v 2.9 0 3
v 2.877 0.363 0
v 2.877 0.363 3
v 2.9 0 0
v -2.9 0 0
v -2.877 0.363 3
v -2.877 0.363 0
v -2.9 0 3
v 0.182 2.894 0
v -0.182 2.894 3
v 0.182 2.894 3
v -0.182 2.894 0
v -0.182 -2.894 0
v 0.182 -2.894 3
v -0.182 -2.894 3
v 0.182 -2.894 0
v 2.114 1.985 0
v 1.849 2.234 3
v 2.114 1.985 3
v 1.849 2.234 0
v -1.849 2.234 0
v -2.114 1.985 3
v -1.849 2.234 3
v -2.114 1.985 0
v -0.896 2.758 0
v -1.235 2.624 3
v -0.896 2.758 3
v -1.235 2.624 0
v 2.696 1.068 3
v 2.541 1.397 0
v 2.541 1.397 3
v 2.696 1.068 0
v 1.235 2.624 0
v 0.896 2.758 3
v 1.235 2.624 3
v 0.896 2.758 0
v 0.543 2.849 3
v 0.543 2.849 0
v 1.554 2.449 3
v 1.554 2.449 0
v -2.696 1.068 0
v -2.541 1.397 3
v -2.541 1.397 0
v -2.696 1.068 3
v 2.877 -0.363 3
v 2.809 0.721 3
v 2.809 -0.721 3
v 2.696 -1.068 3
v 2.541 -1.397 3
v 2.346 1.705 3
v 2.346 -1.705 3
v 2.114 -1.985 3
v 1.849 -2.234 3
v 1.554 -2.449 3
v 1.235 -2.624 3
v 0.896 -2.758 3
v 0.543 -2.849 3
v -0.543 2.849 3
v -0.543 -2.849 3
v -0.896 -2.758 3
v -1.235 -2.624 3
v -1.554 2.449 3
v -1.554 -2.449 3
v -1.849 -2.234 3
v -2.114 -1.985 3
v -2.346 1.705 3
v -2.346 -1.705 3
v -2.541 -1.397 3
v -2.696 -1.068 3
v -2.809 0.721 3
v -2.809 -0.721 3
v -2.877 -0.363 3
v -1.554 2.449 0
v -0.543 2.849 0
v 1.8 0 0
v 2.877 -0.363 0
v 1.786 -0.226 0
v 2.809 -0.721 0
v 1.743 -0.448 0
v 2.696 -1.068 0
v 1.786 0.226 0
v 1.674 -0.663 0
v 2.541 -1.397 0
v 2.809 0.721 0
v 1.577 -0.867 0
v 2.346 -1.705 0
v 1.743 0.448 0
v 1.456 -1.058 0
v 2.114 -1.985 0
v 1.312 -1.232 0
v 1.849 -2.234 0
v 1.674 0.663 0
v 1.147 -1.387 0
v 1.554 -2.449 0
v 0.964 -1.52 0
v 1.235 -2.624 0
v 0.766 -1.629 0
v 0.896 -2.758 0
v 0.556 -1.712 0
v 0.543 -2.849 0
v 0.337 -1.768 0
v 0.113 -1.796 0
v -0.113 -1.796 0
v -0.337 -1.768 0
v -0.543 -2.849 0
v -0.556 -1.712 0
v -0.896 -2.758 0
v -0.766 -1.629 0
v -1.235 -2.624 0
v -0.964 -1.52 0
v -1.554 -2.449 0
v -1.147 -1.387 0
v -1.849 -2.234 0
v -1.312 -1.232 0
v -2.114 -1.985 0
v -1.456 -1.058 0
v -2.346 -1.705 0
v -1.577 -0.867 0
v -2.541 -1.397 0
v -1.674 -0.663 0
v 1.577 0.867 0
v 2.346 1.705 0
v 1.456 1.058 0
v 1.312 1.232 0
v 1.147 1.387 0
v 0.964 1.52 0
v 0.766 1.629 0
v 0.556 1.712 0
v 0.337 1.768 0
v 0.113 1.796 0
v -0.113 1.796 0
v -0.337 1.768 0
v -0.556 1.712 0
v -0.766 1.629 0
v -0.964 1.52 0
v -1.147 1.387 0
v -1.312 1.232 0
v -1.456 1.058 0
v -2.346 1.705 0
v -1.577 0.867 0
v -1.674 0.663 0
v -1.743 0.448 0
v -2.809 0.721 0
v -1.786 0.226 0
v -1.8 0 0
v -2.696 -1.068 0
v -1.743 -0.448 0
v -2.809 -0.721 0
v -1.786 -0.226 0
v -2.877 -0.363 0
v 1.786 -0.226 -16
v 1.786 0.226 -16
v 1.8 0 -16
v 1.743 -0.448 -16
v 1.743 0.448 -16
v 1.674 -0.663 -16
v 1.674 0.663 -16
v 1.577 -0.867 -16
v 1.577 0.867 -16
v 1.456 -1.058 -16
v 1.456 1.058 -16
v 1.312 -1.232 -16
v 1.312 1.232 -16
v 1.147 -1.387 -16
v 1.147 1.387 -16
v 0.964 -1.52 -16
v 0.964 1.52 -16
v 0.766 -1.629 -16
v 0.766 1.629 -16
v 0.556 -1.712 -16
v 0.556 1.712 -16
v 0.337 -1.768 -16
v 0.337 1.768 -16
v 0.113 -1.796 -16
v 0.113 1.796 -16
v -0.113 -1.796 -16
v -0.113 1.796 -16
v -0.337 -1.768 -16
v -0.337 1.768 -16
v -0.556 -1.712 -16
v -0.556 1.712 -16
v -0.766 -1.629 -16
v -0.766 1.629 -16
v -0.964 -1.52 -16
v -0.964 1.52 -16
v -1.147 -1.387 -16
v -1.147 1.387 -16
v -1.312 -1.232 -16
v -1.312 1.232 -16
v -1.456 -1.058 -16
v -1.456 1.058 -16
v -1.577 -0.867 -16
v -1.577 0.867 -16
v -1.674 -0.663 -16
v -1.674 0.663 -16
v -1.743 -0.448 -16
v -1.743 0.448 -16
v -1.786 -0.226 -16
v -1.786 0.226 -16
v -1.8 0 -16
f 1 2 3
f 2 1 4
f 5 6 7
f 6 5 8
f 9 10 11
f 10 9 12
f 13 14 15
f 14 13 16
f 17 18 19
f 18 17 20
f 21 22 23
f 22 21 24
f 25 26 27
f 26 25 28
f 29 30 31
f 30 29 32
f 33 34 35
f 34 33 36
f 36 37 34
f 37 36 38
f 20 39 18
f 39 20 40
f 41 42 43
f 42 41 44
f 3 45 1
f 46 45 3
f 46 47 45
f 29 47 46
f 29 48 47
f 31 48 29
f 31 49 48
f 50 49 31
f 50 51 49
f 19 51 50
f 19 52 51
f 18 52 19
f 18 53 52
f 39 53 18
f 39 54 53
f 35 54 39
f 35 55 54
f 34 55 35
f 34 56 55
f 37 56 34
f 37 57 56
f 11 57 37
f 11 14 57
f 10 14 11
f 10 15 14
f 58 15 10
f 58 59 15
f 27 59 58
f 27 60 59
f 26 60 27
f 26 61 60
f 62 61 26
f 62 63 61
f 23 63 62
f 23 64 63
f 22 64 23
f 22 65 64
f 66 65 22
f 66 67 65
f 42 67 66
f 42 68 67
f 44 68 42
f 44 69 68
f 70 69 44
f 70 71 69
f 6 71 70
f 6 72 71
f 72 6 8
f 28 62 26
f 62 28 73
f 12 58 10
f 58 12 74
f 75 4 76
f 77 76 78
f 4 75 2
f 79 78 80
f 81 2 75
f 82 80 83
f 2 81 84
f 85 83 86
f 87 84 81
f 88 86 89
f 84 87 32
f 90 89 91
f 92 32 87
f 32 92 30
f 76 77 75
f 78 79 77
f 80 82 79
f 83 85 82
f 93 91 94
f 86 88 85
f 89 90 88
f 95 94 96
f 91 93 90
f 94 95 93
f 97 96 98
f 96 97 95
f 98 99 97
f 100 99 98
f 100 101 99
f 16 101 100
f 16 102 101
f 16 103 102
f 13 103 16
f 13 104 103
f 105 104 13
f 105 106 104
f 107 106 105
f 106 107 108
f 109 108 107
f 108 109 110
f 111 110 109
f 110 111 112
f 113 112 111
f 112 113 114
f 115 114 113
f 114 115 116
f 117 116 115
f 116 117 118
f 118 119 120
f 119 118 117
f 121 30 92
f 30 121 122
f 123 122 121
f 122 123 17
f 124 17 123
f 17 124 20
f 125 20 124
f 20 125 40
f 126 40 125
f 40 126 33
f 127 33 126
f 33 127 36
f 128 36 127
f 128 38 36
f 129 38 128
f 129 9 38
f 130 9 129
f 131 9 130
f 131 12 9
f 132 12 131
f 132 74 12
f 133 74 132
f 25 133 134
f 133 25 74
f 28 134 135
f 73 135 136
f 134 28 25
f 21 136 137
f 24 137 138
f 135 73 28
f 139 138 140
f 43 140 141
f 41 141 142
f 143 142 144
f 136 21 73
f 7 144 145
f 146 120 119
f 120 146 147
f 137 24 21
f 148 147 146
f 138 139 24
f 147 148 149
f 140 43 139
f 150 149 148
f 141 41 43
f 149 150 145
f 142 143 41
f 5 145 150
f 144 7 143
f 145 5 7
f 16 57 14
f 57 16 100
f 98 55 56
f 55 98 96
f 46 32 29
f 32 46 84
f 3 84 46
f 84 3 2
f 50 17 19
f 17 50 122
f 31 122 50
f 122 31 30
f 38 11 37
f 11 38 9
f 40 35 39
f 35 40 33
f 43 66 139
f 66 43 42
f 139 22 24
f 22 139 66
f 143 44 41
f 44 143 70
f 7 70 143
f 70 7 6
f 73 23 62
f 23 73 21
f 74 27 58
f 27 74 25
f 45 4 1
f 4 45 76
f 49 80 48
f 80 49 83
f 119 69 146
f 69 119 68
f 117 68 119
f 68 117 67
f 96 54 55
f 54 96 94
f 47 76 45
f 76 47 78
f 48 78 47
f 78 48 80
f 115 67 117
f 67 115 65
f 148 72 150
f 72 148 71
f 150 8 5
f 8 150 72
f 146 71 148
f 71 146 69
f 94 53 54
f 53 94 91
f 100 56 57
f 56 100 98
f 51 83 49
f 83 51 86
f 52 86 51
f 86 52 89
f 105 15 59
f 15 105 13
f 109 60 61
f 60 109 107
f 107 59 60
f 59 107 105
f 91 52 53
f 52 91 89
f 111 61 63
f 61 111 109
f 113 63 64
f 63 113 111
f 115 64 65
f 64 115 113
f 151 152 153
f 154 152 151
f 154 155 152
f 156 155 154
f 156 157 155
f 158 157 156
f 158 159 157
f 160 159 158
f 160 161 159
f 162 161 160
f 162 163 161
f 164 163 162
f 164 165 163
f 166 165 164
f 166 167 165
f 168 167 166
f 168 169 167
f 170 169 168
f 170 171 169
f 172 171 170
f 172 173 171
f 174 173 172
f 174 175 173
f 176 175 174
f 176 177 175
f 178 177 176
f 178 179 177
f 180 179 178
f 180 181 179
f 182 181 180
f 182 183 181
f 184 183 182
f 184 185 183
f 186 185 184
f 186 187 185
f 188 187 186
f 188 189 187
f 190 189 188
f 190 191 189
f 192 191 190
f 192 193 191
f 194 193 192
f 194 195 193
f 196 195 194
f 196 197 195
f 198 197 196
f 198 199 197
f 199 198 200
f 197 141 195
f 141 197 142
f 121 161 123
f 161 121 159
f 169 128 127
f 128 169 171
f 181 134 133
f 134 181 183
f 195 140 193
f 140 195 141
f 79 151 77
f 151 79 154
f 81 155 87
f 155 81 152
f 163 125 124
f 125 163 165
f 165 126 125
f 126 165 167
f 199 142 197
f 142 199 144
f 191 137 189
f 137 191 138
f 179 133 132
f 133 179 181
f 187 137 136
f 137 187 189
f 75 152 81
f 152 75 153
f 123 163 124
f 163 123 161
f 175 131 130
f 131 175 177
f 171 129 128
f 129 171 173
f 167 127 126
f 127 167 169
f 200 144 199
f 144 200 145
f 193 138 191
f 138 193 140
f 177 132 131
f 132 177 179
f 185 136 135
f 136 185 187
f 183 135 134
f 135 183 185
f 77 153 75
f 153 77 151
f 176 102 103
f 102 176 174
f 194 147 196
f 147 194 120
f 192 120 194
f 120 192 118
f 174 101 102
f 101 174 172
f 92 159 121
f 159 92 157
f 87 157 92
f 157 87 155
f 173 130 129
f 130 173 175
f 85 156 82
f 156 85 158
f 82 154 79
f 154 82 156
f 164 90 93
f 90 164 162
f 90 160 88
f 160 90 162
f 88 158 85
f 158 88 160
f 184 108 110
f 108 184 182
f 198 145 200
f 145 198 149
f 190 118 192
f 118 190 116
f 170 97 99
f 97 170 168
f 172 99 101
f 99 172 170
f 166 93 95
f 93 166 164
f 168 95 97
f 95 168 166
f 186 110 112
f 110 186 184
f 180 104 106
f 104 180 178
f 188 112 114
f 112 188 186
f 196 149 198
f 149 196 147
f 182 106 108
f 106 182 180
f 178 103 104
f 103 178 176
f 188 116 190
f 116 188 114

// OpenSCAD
$fn = 50;


difference() {
	union() {
		translate(v = [0, 0, 0]) {
			rotate(a = [0, 0, 0]) {
				difference() {
					union() {
						cylinder(h = 3, r = 2.9000000000);
						translate(v = [0, 0, -16.0000000000]) {
							cylinder(h = 16, r = 1.5000000000);
						}
						translate(v = [0, 0, -16.0000000000]) {
							cylinder(h = 16, r = 1.8000000000);
						}
						translate(v = [0, 0, -16.0000000000]) {
							cylinder(h = 16, r = 1.5000000000);
						}
					}
					union();
				}
			}
		}
	}
	union();
}
